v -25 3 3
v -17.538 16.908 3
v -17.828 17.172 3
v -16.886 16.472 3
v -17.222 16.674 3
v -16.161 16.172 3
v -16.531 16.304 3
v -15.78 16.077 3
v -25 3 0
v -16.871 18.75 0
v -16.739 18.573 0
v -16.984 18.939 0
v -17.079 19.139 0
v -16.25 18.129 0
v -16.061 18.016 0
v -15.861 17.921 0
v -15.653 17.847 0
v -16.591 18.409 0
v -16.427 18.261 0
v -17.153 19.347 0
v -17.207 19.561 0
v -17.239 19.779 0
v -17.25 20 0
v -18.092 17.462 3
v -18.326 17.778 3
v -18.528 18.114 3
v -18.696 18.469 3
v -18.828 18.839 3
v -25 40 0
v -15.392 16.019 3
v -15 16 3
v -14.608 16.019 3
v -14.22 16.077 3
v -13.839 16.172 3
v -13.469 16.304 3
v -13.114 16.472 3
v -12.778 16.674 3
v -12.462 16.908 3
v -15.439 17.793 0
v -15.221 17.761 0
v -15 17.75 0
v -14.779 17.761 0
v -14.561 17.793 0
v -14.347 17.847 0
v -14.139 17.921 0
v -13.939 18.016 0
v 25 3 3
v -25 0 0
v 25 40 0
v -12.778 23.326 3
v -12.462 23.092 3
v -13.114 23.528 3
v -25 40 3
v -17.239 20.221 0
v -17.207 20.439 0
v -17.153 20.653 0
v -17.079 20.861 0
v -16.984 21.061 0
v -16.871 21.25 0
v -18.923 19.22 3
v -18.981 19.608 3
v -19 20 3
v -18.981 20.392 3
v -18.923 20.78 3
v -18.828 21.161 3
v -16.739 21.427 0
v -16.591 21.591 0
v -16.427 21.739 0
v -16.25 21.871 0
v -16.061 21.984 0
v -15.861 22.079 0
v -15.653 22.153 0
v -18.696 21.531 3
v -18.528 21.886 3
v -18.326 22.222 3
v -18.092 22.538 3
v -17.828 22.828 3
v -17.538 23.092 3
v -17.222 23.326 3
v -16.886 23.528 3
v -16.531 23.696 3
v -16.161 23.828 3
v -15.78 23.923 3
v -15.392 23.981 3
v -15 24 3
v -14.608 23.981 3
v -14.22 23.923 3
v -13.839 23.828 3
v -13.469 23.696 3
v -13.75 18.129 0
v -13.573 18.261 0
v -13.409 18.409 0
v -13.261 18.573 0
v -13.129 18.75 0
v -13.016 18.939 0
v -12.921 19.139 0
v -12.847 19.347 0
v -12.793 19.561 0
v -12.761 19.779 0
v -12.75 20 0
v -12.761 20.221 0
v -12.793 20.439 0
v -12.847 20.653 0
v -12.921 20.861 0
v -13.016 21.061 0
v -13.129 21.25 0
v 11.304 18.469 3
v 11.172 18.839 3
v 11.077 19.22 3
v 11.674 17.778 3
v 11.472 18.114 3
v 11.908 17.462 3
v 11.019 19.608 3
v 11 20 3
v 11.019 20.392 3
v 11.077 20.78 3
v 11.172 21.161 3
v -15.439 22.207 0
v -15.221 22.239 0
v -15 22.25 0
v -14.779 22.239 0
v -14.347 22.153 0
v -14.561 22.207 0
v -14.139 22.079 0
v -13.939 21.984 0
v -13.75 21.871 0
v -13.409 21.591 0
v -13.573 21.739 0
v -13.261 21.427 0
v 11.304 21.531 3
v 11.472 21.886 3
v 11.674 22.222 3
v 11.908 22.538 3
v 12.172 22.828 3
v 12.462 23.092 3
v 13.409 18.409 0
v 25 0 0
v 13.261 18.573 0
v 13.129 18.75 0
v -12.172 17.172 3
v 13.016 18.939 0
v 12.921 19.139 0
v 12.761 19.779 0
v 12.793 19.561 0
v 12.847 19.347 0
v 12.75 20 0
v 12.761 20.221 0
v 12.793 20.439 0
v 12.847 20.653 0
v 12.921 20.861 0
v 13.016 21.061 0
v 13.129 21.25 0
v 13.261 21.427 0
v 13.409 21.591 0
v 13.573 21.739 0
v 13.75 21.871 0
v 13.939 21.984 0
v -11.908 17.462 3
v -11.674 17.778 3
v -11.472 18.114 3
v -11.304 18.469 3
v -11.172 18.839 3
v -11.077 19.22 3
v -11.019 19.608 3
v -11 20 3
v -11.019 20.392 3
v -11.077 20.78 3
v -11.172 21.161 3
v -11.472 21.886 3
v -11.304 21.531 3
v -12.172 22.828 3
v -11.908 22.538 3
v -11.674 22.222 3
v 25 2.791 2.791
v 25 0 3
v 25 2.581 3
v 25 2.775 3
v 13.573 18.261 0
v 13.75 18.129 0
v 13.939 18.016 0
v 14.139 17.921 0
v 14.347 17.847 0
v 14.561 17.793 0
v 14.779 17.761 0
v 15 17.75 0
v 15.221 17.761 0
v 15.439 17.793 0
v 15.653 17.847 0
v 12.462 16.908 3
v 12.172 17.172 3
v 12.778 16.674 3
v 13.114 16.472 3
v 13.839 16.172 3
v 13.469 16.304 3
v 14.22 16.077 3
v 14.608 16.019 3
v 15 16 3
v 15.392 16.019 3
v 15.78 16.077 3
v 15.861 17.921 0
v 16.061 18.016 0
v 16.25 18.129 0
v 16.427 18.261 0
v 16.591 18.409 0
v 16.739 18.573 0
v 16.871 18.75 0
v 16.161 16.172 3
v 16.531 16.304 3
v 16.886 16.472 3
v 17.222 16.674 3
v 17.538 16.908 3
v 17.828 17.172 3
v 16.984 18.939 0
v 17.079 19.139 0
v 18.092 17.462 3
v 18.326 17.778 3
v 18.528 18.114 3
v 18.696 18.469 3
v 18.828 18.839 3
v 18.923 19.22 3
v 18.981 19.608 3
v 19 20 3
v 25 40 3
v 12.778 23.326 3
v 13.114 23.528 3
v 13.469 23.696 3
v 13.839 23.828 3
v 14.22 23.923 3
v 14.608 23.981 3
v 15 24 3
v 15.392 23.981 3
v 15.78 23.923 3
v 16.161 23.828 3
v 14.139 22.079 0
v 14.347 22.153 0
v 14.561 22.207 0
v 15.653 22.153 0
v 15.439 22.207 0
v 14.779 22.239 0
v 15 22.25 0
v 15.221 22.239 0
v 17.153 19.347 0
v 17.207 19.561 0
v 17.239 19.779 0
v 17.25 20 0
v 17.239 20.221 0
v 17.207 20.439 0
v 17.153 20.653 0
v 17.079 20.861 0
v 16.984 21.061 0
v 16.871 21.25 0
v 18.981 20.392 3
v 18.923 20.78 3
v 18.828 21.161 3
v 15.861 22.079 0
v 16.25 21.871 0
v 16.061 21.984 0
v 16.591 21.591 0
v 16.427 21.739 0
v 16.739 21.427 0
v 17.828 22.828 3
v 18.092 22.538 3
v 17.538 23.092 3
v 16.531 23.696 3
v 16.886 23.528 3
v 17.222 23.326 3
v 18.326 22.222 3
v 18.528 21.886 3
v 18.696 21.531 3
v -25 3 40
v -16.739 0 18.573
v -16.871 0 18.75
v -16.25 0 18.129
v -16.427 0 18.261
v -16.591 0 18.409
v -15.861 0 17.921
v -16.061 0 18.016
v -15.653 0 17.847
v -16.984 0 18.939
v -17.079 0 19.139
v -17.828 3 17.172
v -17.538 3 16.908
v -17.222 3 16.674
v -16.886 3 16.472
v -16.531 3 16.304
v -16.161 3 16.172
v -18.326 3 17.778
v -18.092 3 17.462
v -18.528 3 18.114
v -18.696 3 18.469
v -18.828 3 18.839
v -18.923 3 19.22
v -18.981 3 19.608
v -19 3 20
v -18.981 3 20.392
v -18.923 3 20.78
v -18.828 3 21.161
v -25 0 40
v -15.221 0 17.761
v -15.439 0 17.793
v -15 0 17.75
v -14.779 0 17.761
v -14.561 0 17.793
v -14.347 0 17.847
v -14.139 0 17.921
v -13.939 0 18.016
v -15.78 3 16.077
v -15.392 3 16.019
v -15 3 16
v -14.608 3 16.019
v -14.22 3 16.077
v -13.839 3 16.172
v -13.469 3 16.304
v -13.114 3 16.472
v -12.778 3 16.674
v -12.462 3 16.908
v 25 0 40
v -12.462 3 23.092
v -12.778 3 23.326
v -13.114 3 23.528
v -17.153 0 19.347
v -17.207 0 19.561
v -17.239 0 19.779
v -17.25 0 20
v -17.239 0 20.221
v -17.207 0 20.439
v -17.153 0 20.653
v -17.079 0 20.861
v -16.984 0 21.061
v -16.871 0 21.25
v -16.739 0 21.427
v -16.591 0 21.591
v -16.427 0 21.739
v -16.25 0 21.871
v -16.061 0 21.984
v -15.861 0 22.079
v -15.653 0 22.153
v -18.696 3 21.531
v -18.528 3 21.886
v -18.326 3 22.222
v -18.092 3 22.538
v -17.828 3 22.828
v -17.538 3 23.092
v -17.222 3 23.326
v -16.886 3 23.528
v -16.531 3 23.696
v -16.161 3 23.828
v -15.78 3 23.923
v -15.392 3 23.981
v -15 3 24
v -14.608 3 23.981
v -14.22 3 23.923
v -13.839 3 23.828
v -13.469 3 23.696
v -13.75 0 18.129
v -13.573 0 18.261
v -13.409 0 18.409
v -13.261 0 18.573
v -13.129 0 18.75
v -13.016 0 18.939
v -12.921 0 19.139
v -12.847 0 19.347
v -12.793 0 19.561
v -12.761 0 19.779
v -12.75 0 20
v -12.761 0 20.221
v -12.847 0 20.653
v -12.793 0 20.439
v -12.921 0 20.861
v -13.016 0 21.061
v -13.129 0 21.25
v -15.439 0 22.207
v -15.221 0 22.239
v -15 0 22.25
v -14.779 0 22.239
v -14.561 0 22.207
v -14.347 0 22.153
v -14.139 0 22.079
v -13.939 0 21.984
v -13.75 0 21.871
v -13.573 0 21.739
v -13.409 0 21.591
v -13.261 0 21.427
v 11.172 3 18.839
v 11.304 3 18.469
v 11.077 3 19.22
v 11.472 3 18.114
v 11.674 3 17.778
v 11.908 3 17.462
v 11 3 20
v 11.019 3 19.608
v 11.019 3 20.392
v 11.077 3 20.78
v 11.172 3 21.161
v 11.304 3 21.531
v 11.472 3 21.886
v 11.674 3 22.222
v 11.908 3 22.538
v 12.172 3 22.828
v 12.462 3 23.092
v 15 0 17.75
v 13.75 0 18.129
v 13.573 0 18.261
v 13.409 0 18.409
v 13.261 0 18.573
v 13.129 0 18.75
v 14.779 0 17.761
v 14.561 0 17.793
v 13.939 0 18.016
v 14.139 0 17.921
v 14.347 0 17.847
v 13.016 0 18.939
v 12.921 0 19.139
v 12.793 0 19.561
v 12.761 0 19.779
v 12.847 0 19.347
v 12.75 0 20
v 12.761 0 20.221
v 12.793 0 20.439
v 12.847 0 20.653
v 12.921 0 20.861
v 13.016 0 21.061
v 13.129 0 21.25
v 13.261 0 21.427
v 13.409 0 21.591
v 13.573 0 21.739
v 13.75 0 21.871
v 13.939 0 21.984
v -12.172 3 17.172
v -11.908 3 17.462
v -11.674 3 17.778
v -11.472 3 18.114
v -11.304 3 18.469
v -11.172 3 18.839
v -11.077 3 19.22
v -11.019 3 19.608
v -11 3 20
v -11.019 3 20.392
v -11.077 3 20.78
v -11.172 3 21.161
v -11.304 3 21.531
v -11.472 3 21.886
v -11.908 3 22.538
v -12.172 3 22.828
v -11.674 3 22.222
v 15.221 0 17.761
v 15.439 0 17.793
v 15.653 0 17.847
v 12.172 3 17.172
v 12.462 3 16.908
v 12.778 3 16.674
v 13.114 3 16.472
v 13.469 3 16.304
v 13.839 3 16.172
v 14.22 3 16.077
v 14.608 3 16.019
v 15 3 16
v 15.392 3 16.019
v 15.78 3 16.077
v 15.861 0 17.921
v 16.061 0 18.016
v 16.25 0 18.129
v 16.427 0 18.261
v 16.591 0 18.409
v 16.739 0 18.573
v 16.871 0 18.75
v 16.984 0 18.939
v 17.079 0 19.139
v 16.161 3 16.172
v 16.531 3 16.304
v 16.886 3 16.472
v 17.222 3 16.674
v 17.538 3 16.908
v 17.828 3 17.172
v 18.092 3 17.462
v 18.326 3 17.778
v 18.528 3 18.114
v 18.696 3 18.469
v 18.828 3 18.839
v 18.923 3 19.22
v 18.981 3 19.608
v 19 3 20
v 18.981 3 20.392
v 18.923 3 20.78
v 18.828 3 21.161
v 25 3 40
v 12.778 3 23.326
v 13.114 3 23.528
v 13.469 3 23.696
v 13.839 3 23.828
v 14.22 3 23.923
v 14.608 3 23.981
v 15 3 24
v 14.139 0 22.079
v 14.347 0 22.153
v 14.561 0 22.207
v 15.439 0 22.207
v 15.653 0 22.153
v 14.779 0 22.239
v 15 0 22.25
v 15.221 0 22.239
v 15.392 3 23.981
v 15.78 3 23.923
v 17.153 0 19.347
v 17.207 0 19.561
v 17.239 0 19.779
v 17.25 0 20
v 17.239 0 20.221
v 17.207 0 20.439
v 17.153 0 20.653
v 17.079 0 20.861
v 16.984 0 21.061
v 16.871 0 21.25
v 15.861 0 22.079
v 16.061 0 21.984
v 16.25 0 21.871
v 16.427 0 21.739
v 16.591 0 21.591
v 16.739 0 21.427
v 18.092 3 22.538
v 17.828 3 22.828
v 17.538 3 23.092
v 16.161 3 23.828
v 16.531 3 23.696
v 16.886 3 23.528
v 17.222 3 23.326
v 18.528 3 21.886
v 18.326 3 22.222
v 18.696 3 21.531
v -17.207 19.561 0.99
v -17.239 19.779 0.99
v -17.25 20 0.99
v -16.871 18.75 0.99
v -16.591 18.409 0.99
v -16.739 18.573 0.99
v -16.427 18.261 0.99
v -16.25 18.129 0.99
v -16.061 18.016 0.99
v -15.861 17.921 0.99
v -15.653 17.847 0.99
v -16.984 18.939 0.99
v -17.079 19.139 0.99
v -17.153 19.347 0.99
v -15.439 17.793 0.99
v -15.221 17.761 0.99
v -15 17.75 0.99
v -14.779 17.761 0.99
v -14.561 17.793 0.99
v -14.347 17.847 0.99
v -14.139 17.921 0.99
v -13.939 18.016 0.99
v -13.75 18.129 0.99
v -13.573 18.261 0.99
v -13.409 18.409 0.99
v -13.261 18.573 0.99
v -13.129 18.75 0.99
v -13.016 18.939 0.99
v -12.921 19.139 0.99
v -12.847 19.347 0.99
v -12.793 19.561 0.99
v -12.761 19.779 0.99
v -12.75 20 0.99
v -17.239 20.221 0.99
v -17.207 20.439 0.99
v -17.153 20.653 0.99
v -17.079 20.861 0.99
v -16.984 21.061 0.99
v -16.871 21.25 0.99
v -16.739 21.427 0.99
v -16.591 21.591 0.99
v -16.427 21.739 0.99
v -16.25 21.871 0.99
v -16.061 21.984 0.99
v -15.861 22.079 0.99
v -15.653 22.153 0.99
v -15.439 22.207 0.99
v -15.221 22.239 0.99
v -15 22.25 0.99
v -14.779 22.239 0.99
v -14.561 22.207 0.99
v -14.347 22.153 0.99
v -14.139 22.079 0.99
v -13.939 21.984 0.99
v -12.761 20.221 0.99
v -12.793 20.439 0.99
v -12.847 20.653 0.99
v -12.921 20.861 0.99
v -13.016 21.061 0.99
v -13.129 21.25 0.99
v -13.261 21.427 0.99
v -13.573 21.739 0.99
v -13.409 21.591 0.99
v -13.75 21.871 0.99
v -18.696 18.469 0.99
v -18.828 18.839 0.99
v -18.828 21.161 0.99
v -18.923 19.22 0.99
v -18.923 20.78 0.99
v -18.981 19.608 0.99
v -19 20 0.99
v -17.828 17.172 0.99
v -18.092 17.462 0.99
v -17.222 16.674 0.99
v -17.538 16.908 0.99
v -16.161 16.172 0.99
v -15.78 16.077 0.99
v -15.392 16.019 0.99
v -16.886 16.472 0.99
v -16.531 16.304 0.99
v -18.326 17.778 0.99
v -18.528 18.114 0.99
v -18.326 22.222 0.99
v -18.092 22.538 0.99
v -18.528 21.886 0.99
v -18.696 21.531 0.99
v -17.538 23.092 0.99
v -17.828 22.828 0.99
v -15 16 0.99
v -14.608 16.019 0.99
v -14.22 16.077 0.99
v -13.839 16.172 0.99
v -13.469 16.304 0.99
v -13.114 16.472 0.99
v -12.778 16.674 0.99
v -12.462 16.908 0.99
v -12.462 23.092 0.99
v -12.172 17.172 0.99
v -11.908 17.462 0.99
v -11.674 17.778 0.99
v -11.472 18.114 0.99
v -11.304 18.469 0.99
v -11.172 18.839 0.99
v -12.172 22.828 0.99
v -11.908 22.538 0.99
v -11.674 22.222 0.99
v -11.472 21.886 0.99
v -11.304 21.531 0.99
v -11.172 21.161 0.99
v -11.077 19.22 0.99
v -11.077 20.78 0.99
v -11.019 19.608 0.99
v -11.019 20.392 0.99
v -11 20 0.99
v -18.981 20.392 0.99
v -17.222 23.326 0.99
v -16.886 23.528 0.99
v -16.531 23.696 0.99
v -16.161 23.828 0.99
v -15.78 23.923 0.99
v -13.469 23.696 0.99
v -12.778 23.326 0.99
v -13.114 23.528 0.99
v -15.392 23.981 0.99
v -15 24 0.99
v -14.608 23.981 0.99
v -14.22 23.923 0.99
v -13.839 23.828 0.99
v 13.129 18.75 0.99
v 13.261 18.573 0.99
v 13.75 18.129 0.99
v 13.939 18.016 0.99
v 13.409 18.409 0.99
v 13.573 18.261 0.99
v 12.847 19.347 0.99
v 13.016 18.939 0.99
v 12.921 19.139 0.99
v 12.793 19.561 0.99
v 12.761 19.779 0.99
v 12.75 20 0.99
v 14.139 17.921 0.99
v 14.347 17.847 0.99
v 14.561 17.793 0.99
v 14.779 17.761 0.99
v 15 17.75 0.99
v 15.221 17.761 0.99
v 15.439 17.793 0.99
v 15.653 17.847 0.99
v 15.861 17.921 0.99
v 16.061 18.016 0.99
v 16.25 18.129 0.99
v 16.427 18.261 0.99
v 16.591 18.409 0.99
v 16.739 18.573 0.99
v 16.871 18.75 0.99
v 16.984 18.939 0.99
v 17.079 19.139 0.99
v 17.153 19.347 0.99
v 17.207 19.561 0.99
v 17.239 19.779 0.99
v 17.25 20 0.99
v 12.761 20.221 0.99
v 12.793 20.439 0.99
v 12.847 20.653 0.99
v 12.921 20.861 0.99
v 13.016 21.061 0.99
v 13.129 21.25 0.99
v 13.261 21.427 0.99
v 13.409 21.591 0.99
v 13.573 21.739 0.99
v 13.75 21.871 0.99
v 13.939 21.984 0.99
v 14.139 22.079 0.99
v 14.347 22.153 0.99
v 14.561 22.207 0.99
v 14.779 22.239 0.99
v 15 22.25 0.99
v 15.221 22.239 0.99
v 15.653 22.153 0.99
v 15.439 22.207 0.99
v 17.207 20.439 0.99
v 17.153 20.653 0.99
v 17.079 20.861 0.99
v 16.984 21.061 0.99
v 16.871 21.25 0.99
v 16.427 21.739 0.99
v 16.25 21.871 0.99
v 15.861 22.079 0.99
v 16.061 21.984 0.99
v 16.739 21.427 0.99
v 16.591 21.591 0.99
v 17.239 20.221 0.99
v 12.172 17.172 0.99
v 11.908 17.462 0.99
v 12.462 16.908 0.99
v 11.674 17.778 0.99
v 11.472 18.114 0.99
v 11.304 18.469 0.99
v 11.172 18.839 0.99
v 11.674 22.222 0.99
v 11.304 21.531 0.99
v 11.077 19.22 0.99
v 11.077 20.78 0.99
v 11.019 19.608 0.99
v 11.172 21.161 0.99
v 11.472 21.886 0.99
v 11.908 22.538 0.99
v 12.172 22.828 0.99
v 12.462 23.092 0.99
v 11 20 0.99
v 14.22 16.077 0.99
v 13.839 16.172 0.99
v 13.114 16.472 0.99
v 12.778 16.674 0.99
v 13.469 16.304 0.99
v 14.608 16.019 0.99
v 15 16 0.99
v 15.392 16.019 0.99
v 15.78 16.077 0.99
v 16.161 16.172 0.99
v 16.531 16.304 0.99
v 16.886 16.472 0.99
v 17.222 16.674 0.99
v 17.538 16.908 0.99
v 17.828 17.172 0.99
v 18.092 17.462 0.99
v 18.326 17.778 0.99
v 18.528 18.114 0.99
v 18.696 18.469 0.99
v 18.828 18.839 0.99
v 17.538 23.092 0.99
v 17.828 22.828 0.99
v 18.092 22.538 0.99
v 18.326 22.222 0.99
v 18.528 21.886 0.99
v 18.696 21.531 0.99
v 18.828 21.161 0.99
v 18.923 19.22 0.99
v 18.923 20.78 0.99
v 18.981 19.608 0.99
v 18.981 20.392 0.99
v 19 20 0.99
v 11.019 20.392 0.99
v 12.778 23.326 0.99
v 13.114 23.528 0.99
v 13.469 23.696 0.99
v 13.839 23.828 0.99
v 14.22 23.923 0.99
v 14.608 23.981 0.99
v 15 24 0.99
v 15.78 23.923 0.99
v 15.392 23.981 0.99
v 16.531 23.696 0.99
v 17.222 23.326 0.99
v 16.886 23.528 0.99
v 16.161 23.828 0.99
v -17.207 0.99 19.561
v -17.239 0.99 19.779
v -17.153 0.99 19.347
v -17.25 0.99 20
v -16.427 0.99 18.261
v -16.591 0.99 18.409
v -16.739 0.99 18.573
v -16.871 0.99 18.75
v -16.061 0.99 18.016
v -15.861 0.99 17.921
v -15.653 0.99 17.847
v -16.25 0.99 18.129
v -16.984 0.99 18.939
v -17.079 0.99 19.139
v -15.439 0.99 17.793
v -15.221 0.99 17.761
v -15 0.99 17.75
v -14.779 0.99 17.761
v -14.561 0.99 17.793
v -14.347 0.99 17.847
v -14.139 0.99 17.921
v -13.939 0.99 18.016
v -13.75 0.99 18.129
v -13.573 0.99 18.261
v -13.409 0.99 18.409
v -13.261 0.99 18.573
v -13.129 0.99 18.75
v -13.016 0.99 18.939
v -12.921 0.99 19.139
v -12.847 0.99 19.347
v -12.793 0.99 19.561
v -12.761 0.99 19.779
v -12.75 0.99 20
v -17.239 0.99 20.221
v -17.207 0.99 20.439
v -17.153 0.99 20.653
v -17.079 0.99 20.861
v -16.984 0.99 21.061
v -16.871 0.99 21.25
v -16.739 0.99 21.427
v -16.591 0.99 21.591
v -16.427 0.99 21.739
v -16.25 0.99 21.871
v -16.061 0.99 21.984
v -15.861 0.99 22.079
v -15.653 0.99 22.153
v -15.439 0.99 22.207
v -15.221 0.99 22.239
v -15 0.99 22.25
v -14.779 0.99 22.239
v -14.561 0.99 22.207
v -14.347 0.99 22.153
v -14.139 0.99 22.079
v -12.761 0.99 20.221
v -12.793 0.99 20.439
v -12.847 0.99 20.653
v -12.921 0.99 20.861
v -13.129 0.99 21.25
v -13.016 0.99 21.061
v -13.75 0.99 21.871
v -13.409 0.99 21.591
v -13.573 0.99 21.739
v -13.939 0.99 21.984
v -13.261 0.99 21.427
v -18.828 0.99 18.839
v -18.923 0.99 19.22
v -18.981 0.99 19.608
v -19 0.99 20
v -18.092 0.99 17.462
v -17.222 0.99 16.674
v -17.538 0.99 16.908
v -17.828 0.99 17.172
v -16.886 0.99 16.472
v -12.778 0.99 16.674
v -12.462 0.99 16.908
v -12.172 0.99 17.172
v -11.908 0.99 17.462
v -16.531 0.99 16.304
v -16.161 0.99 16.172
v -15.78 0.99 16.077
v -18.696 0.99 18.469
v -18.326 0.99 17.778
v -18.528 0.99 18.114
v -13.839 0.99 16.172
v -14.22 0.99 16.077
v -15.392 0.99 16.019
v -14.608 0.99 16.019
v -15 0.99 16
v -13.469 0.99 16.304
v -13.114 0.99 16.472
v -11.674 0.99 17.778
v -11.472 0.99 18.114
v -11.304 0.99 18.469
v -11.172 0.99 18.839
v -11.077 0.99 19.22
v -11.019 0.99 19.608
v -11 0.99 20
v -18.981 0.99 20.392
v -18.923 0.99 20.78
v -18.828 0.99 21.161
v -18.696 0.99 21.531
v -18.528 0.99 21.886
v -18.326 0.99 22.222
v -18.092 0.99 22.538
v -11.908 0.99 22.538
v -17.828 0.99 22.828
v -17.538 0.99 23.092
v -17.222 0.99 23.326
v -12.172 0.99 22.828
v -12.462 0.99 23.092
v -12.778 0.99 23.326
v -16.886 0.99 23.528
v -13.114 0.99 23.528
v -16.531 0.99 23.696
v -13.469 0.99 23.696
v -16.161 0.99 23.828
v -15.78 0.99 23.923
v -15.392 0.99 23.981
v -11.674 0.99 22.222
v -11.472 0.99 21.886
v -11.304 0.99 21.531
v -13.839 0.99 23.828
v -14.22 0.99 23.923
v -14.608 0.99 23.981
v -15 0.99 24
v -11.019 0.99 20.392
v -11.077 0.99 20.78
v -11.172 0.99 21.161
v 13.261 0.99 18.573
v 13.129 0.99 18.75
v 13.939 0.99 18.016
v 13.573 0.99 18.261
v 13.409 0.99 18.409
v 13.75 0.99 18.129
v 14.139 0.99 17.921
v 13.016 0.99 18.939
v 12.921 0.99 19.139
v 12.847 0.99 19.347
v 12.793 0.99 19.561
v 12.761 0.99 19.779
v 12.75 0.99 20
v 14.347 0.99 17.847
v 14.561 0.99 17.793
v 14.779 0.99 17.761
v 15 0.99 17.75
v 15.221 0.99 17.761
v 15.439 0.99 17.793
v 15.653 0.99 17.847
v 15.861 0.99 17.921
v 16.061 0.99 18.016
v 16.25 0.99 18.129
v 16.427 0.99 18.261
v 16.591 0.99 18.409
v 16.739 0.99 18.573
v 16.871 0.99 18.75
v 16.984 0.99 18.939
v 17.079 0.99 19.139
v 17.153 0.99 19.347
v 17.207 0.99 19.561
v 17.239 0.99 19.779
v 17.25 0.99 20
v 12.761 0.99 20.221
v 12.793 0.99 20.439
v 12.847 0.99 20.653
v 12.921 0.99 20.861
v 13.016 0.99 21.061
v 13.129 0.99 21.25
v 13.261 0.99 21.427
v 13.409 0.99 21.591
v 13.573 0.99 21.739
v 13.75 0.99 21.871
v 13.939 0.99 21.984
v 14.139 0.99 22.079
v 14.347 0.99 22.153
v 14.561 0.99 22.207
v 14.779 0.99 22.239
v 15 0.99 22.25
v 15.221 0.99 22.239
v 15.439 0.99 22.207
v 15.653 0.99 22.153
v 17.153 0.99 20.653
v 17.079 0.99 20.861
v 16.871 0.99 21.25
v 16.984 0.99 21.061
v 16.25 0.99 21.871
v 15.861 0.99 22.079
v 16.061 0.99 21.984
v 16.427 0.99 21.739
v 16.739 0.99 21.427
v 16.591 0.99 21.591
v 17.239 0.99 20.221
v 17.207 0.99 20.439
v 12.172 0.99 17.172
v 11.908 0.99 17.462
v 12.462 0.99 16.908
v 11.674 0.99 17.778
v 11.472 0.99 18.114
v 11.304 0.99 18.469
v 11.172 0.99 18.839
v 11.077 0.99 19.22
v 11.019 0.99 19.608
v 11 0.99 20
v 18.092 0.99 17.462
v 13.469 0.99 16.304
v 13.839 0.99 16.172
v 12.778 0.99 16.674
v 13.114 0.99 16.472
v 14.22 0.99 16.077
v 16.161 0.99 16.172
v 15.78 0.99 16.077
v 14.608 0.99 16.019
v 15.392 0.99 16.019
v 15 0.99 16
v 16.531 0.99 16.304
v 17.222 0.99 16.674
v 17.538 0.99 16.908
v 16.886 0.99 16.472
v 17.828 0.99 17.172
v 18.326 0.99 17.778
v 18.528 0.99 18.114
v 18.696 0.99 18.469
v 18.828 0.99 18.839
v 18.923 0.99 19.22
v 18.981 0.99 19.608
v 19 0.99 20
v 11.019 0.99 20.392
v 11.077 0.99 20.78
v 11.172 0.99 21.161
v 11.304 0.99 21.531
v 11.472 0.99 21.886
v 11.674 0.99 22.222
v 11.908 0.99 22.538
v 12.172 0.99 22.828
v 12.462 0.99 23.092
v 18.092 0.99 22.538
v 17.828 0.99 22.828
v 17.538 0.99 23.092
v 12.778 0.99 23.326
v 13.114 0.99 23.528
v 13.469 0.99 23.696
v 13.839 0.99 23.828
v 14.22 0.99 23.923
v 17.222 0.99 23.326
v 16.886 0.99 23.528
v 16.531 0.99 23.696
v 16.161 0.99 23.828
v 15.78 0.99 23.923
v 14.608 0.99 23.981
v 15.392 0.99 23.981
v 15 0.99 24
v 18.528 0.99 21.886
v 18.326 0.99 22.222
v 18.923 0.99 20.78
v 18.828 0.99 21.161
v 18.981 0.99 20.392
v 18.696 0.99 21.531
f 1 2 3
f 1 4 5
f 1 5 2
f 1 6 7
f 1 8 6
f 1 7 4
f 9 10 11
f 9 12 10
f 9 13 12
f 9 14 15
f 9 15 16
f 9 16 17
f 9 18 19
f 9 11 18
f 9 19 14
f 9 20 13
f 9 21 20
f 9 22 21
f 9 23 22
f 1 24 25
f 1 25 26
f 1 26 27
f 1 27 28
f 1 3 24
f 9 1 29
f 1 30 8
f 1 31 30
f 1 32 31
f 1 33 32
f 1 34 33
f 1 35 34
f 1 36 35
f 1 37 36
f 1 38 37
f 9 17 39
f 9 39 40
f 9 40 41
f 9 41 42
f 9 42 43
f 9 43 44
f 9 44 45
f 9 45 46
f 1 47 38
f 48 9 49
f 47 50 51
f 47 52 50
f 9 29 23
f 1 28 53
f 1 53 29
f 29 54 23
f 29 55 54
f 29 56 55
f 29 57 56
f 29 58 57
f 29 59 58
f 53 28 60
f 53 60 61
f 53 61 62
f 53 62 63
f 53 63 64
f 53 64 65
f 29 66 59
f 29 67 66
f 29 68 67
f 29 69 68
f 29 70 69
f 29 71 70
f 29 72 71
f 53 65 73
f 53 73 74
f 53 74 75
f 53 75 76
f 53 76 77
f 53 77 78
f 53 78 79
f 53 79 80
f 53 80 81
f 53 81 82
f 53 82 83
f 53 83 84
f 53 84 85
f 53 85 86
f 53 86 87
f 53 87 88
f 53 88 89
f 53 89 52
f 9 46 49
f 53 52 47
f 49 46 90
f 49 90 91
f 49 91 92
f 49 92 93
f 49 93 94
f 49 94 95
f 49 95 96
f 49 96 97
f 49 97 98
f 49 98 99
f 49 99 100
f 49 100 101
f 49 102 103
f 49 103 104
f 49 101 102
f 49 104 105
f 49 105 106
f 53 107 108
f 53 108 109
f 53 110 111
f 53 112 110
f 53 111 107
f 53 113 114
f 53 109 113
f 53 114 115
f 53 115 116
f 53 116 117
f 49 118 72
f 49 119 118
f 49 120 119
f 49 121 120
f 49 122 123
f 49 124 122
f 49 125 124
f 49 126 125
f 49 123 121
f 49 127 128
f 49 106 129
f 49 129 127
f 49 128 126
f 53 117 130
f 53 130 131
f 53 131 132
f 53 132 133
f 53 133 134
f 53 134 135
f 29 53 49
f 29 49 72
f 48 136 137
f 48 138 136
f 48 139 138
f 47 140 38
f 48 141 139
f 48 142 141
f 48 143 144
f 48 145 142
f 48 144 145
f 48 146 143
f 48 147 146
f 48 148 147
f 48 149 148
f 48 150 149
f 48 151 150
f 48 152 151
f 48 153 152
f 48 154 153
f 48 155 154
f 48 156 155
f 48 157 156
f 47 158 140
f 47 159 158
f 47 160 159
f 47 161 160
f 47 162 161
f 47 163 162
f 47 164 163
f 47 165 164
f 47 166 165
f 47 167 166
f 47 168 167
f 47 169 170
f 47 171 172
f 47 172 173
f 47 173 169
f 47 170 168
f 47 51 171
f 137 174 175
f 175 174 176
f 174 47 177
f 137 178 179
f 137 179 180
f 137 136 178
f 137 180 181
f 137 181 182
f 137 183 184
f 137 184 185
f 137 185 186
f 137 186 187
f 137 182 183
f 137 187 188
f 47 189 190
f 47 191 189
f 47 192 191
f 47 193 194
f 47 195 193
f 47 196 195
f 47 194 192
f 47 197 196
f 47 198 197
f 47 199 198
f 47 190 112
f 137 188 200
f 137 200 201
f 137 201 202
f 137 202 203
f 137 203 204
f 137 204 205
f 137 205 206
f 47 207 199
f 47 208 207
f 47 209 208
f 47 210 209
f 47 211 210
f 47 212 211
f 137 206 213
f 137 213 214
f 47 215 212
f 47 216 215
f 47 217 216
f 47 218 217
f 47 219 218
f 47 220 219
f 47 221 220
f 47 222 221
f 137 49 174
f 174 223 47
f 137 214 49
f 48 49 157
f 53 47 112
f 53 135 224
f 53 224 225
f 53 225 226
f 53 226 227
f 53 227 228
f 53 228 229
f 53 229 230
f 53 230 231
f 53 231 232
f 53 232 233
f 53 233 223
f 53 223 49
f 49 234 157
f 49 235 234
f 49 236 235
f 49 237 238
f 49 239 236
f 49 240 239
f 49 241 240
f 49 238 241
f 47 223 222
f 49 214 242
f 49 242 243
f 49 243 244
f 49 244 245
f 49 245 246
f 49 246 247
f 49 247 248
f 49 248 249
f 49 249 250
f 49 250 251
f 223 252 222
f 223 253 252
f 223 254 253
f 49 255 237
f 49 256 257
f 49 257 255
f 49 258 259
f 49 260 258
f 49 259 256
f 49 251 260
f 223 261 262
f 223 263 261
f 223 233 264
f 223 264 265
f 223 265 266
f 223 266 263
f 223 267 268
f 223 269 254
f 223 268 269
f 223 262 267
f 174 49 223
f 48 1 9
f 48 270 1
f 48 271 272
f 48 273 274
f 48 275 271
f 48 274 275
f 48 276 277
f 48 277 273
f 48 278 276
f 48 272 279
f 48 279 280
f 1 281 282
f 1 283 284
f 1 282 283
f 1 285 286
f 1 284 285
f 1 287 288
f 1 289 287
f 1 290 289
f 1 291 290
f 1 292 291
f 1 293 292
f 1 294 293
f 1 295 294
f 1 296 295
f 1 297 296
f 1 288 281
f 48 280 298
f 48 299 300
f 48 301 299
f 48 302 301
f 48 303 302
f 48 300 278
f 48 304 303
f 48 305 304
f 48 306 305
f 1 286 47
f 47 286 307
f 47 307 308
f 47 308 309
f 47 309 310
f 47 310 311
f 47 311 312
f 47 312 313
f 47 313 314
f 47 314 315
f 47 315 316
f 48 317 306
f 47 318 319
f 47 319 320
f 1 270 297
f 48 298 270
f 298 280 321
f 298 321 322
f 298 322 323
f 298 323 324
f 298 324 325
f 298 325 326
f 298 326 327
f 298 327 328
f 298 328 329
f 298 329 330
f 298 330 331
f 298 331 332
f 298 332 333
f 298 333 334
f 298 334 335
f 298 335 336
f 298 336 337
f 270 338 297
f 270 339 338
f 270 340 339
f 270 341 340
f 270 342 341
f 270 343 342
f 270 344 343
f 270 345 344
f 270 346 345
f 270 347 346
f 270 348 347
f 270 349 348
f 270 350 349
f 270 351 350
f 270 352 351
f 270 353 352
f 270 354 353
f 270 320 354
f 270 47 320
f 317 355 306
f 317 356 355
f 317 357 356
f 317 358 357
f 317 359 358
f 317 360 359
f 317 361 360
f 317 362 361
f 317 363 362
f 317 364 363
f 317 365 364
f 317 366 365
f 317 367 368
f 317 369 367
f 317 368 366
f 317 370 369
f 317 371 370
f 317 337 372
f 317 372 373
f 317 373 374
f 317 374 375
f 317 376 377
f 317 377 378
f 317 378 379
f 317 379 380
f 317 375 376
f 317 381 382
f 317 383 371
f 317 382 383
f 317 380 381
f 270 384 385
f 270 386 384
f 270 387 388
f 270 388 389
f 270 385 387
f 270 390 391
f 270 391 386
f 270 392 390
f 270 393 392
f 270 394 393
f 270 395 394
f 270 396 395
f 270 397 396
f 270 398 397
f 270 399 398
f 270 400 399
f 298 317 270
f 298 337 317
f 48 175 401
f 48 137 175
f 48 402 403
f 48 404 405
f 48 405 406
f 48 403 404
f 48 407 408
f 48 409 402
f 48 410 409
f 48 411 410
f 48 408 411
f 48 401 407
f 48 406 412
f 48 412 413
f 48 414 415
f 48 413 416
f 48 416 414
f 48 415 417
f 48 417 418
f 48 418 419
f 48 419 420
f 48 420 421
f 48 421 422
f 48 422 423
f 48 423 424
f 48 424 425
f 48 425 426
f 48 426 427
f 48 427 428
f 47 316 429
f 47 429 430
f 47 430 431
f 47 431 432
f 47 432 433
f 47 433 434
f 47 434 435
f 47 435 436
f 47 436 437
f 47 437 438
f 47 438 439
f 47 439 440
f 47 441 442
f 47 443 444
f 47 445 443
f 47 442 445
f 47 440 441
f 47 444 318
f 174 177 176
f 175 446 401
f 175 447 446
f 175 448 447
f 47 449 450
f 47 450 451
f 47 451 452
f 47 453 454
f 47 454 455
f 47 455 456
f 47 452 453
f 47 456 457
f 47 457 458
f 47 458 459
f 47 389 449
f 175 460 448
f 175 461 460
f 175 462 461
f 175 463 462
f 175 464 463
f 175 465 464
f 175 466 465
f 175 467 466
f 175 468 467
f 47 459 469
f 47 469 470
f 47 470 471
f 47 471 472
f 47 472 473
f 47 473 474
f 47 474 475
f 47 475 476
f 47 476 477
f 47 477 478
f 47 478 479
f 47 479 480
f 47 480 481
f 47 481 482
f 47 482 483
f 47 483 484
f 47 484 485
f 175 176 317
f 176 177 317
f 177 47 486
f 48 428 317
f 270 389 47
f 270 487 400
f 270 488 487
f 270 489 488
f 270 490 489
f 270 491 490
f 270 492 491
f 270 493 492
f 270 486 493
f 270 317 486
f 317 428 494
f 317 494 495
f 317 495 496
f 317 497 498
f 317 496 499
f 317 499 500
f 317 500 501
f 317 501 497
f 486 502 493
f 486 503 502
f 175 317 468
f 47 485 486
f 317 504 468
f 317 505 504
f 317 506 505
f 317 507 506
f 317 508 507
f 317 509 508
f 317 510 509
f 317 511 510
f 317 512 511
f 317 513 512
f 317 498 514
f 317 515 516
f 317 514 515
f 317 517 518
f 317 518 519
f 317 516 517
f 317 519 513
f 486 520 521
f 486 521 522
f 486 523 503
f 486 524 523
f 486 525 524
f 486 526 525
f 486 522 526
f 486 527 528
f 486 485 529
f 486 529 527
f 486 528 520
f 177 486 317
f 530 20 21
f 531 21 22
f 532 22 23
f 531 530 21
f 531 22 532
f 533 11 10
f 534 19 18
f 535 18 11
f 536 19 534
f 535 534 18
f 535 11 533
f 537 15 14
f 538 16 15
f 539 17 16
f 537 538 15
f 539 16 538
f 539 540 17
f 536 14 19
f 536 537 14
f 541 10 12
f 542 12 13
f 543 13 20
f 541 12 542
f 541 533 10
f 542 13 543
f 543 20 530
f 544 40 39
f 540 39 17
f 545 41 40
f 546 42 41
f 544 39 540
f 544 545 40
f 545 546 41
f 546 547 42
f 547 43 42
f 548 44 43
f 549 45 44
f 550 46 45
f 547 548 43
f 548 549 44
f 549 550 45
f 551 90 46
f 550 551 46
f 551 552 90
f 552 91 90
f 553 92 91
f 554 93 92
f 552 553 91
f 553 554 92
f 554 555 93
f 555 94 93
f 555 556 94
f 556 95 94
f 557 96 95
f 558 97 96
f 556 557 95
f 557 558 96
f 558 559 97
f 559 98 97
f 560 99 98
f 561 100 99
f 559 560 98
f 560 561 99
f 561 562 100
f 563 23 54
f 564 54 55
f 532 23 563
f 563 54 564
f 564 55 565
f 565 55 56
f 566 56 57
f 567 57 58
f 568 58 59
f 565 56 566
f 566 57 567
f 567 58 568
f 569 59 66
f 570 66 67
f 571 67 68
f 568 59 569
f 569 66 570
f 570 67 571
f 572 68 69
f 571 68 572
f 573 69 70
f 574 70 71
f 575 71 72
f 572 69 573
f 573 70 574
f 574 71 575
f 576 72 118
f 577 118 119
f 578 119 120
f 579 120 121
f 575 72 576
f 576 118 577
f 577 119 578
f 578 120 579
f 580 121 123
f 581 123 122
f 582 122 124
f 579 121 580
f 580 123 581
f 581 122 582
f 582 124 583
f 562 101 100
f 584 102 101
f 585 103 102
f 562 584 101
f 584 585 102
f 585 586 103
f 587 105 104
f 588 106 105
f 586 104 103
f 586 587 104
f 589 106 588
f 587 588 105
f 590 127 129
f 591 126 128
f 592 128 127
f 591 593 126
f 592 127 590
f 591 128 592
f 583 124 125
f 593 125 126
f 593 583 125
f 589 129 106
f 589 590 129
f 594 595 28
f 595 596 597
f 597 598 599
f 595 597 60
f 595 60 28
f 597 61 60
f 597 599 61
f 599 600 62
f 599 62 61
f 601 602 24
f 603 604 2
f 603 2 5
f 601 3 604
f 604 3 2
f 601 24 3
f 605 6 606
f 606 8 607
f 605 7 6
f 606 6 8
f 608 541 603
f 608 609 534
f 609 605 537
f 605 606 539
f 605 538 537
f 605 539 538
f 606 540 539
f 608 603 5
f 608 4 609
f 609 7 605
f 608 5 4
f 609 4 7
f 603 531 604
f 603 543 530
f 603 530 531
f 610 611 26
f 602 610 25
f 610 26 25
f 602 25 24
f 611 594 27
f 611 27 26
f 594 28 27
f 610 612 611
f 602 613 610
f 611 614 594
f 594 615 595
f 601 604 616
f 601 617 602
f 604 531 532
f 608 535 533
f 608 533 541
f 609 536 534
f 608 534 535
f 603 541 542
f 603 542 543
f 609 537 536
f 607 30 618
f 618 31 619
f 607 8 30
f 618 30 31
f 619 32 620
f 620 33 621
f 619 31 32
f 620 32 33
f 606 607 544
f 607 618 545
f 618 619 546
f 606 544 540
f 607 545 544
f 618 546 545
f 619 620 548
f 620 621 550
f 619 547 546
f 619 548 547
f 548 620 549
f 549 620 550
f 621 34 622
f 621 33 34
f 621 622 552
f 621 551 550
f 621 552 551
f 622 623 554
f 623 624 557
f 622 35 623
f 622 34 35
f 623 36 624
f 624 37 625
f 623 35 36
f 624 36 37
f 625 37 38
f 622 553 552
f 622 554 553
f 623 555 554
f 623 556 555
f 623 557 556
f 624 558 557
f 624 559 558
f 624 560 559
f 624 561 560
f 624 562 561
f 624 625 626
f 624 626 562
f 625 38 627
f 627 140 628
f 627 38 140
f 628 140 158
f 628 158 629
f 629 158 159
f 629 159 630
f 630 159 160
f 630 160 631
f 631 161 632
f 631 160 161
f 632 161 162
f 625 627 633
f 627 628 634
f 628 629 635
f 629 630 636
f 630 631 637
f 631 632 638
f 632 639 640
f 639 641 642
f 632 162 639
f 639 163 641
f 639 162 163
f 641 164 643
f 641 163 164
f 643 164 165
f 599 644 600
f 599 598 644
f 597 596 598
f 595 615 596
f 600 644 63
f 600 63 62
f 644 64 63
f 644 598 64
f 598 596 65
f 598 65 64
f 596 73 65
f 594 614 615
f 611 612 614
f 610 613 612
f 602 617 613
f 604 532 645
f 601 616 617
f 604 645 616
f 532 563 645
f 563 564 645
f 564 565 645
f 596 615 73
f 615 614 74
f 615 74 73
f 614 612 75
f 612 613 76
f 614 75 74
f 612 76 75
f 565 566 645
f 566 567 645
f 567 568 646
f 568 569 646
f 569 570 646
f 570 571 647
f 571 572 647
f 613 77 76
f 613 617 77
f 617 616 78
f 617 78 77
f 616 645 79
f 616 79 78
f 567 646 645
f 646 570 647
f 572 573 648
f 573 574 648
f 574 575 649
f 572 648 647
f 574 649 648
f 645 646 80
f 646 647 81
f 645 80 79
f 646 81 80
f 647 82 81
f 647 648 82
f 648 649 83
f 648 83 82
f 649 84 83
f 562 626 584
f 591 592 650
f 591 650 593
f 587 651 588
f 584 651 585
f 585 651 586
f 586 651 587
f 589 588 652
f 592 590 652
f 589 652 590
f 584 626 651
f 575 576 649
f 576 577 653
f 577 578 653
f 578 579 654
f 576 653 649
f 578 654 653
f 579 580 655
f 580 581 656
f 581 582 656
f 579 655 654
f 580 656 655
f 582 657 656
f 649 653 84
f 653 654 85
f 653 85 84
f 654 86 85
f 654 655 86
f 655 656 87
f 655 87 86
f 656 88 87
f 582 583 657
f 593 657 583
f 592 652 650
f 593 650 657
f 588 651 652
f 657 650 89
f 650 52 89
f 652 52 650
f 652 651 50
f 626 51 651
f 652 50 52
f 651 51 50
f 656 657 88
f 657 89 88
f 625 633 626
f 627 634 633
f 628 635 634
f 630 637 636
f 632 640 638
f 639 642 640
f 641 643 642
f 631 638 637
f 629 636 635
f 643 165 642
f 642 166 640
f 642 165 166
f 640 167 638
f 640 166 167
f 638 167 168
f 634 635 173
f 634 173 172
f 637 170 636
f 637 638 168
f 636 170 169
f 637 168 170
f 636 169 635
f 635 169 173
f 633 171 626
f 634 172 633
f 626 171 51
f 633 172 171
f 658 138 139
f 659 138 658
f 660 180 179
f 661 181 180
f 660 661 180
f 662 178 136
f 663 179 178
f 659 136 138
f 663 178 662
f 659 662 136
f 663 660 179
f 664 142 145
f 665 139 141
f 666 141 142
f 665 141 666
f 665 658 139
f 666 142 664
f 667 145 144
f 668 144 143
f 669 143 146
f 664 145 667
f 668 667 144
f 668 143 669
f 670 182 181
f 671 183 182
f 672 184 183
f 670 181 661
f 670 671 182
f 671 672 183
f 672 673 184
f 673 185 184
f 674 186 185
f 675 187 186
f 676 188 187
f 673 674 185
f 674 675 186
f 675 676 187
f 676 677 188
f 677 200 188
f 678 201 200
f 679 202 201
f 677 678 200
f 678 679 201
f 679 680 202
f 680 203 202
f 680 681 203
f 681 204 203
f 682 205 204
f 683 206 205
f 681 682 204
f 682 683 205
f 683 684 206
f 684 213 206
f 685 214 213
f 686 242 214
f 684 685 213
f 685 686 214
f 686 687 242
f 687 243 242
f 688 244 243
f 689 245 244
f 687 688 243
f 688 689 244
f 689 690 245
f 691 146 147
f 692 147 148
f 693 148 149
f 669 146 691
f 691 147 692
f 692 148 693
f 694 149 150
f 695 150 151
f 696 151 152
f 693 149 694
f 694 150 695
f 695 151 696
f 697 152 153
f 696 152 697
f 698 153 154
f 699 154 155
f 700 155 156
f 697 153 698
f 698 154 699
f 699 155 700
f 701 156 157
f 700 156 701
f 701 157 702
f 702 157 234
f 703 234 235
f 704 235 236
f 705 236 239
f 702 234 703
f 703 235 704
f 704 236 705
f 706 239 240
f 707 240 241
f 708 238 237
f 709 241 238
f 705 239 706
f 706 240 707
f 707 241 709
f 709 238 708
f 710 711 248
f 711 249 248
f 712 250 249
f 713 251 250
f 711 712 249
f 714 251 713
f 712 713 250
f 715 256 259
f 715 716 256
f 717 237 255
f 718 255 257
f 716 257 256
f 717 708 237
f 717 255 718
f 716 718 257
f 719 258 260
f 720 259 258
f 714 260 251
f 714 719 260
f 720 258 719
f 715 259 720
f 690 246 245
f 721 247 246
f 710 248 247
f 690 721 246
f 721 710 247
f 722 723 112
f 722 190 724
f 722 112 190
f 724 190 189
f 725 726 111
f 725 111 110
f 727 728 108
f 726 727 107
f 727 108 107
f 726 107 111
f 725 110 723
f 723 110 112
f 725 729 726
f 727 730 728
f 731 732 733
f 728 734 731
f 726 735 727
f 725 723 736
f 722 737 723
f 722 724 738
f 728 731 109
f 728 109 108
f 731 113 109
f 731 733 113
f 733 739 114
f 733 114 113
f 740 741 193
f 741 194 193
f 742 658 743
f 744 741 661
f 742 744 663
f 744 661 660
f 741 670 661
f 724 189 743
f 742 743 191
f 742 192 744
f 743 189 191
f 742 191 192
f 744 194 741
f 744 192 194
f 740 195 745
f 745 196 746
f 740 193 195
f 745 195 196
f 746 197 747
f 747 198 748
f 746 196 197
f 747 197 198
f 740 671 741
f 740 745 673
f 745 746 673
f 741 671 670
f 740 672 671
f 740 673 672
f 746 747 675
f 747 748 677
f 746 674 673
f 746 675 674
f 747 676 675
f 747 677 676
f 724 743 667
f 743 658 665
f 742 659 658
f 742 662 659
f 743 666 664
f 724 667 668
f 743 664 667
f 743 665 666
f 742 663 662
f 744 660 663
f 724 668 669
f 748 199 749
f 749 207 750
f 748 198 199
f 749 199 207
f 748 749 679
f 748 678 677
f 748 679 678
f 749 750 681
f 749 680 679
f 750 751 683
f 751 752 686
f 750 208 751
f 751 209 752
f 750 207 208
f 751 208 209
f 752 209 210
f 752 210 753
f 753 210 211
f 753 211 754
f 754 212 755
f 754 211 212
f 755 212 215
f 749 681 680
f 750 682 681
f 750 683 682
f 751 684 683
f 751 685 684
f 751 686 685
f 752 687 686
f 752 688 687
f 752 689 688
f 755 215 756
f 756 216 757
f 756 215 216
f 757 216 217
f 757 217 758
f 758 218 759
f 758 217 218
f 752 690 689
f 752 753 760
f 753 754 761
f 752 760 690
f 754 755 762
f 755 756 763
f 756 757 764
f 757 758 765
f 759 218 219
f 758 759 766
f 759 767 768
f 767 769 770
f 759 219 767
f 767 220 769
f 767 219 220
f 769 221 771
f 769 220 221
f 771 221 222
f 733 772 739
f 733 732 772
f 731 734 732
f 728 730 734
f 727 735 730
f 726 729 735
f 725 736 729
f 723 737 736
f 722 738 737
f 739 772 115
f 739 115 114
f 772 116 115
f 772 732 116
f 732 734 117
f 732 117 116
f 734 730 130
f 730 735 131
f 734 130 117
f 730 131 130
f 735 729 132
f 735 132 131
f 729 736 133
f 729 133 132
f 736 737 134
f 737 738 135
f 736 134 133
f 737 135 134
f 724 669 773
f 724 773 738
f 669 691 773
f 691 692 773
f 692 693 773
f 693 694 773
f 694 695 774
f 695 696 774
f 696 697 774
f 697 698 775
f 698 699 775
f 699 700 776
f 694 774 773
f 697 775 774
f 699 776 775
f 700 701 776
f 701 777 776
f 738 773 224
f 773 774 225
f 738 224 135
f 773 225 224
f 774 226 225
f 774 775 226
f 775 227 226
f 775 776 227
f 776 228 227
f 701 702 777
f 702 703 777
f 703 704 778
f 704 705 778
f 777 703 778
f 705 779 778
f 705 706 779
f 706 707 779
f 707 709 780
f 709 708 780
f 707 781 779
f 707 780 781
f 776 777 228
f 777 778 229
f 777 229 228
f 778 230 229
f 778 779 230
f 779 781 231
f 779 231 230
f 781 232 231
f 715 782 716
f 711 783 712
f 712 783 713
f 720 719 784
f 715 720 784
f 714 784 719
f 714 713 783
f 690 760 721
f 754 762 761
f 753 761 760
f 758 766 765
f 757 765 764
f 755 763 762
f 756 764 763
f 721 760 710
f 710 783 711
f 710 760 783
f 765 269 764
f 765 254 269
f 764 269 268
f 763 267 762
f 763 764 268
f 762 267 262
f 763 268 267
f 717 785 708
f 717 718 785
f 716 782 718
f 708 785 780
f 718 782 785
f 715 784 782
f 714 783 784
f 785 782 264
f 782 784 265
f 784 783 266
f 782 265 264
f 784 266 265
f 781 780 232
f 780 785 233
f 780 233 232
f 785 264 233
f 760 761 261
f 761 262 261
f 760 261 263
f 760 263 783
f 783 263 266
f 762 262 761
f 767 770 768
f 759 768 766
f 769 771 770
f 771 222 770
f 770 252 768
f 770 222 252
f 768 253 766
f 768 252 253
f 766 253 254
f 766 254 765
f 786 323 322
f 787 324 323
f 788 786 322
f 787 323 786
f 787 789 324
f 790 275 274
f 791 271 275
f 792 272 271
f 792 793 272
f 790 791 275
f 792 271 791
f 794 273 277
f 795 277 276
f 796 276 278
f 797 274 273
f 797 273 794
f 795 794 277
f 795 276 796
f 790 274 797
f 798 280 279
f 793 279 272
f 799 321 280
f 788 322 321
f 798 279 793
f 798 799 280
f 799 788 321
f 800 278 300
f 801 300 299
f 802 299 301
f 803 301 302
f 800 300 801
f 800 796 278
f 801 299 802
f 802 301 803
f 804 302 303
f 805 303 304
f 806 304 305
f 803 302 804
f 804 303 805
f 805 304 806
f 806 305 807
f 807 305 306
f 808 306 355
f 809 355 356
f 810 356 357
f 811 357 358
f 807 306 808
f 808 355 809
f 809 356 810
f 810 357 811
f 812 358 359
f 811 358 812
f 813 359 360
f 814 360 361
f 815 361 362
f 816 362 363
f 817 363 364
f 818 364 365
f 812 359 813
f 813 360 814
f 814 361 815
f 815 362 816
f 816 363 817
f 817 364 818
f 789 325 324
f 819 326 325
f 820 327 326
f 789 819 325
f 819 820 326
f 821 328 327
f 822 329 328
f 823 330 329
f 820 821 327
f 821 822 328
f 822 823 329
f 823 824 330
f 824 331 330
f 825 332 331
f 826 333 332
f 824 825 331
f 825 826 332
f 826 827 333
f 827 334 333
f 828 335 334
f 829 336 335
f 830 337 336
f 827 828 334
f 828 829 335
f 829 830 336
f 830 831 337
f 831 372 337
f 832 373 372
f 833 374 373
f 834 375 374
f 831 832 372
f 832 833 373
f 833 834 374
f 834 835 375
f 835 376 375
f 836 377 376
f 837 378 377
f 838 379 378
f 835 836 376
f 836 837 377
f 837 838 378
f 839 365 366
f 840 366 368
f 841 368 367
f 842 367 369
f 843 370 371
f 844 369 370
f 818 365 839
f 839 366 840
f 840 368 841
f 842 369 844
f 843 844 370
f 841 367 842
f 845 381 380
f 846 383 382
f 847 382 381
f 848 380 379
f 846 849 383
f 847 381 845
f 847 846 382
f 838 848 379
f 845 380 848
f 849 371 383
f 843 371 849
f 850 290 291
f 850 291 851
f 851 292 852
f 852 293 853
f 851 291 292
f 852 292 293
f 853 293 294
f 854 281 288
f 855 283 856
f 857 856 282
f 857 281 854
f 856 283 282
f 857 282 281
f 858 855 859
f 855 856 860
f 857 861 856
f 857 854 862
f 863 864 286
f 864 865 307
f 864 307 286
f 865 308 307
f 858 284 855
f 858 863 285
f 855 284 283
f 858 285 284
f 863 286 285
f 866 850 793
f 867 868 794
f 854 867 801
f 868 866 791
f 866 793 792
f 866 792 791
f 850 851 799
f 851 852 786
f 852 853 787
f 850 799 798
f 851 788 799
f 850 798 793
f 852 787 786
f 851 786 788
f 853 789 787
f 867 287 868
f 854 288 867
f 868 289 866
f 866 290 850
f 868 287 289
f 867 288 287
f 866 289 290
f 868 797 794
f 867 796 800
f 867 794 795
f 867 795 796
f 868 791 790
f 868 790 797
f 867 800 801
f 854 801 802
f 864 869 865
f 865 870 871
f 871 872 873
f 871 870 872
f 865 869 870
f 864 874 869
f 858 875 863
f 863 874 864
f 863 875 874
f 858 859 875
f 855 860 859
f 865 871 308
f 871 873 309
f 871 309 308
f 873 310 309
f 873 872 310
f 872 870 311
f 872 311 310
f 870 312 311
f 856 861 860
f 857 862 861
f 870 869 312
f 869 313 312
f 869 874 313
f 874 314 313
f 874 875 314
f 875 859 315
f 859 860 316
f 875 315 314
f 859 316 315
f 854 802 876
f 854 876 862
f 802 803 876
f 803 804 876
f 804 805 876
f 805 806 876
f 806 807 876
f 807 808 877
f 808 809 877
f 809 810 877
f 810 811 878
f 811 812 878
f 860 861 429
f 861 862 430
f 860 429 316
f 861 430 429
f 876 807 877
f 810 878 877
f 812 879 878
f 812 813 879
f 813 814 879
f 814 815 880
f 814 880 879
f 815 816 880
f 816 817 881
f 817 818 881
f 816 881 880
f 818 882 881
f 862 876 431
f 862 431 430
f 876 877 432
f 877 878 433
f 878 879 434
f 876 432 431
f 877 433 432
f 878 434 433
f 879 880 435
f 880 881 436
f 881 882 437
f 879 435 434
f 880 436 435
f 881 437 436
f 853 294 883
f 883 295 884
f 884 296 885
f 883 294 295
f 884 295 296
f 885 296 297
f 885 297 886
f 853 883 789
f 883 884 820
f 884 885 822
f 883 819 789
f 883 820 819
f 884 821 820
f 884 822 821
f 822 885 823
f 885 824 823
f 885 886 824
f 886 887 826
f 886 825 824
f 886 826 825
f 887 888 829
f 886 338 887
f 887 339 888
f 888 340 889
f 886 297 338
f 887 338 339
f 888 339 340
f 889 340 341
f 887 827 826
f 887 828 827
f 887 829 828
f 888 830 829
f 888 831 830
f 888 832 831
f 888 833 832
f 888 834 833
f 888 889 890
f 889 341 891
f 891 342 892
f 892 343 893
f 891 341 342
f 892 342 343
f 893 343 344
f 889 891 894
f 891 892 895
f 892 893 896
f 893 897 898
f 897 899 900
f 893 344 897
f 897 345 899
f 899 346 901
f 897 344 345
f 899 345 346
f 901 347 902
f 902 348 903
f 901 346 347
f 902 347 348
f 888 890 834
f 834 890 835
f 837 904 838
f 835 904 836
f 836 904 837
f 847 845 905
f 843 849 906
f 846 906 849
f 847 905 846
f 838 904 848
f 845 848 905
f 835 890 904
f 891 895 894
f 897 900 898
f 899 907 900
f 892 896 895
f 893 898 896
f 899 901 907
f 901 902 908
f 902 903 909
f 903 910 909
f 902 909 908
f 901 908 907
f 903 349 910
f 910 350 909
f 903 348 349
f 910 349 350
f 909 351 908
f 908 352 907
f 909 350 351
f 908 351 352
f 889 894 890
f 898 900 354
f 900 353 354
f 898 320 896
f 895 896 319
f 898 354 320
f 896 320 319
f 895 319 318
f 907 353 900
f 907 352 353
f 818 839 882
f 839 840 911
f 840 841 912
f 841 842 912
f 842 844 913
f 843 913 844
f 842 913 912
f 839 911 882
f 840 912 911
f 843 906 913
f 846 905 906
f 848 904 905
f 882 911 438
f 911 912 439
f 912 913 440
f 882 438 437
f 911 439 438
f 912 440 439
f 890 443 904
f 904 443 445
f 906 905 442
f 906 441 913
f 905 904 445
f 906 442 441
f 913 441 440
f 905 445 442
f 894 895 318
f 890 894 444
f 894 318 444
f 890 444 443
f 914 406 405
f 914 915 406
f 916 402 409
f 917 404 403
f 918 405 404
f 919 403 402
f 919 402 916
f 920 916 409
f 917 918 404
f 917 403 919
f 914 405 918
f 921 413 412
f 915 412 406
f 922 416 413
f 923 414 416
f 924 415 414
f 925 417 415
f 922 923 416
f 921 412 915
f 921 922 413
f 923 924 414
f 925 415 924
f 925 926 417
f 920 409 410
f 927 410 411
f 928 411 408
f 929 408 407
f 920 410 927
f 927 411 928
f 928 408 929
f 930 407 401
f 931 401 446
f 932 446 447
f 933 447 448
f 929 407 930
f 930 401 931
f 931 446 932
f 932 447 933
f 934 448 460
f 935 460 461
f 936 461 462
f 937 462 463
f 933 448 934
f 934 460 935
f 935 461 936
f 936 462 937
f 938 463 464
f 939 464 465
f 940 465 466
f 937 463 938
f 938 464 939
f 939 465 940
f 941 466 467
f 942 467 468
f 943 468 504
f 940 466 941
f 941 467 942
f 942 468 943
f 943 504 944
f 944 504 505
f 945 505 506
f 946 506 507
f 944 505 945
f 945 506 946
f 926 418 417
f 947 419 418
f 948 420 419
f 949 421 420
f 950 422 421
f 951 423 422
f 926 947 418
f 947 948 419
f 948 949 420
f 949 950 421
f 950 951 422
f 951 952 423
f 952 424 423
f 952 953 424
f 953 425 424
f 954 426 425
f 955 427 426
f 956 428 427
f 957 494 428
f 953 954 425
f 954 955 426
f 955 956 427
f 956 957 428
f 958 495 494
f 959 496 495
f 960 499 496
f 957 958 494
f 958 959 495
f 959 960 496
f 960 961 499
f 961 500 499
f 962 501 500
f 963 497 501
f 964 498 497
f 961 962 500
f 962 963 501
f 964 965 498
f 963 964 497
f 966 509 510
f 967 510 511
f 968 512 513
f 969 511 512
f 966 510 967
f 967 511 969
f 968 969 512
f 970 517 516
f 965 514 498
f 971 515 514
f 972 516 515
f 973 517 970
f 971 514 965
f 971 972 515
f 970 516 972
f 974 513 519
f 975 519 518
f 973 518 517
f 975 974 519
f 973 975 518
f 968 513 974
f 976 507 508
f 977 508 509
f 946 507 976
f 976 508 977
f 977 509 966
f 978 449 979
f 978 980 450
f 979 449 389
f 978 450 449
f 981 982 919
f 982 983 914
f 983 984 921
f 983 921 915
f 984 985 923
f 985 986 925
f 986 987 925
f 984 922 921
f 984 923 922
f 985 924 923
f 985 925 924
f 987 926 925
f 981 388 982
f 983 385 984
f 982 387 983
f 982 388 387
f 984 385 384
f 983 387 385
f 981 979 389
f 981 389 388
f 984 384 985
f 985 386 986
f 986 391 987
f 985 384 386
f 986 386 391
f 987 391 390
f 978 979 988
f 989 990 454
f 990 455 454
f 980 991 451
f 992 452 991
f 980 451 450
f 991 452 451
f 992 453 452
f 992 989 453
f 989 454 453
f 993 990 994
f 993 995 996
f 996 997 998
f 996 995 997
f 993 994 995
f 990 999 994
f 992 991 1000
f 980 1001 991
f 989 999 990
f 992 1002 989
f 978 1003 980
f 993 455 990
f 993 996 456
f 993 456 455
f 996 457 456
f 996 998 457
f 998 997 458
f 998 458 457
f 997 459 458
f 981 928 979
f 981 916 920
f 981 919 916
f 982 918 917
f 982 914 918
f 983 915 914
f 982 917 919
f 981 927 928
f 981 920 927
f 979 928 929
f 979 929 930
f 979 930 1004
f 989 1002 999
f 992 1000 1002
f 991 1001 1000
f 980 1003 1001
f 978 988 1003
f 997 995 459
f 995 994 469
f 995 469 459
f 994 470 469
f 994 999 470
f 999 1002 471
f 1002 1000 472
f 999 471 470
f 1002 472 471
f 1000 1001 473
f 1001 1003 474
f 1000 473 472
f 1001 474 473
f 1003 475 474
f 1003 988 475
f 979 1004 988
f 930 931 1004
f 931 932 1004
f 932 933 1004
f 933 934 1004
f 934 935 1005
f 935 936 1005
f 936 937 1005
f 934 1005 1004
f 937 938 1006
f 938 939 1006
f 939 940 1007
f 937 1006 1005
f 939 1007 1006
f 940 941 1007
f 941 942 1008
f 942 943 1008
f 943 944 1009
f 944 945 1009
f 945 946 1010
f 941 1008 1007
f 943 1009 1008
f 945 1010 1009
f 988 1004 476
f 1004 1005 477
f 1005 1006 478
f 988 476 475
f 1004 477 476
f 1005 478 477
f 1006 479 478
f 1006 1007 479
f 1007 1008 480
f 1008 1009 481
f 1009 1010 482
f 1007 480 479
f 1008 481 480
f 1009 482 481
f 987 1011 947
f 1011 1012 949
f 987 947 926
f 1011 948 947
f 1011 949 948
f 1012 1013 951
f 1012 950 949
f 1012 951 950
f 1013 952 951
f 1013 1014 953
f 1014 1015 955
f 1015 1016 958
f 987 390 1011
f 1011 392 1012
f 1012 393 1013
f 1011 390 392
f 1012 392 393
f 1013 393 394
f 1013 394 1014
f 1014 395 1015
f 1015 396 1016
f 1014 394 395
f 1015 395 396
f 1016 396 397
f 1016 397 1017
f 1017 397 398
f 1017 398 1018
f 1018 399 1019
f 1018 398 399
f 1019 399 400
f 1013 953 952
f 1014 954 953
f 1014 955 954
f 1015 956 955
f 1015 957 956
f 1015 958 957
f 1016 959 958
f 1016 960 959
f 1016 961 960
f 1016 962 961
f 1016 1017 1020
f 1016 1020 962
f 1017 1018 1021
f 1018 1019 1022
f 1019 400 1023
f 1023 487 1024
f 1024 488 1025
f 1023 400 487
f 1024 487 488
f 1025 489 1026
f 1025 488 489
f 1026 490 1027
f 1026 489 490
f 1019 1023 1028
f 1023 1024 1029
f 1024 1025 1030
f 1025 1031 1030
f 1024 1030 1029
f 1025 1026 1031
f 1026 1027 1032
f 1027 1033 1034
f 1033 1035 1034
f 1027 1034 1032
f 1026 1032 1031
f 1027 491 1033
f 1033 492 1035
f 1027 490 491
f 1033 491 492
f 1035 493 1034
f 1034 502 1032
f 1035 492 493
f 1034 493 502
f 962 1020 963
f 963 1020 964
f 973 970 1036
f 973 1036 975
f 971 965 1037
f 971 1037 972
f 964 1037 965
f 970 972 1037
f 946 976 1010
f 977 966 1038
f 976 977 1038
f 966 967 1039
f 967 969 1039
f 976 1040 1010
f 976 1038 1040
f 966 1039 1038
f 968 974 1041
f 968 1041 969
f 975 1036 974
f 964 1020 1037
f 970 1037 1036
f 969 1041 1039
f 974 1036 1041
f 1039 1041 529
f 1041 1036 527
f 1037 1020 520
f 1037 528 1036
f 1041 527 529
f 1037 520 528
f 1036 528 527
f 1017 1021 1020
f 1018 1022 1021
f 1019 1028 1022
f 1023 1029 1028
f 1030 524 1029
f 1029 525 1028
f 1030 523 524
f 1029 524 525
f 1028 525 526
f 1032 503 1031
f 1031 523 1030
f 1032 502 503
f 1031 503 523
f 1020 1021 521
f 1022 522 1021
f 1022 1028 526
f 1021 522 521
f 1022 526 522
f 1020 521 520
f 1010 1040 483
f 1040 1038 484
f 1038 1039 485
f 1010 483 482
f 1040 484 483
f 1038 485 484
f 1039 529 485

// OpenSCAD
// L-bracket with counterbored holes
width = 50;      // X: plate width
length = 40;     // Y (horizontal depth) / Z (vertical height)
thickness = 3;

hole_d = 4.5;        // through-hole diameter
cbore_d = 8;         // counterbore diameter
cbore_depth = 2;     // counterbore depth
edge_inset = 10;     // inset from side edges along X
$fn = 64;
eps = 0.01;

module ycyl(d, h) { rotate([-90, 0, 0]) cylinder(d=d, h=h, center=false); }

module l_bracket() {
  translate([-width/2, 0, 0])
  difference() {
    // Base geometry: inner corner at (x: any, y=0, z=0), flanges to +Y and +Z
    union() {
      // Horizontal flange (extends +Y)
      cube([width, length, thickness], center=false);
      // Vertical flange (extends +Z)
      cube([width, thickness, length], center=false);
    }

    // Holes on horizontal flange (counterbore on top, z = thickness side)
    for (sx = [-1, 1]) {
      x = width/2 + sx*(width/2 - edge_inset);
      y = length/2;
      // Through hole
      translate([x, y, -eps]) cylinder(d=hole_d, h=thickness + 2*eps);
      // Counterbore (from outer/top face)
      translate([x, y, thickness - cbore_depth - eps])
        cylinder(d=cbore_d, h=cbore_depth + 2*eps);
    }

    // Holes on vertical flange (counterbore on outer side, y = thickness side)
    for (sx = [-1, 1]) {
      x = width/2 + sx*(width/2 - edge_inset);
      z = length/2;
      // Through hole along Y
      translate([x, -eps, z]) ycyl(d=hole_d, h=thickness + 2*eps);
      // Counterbore from outer face (y = thickness)
      translate([x, thickness - cbore_depth - eps, z])
        ycyl(d=cbore_d, h=cbore_depth + 2*eps);
    }
  }
}

l_bracket();
